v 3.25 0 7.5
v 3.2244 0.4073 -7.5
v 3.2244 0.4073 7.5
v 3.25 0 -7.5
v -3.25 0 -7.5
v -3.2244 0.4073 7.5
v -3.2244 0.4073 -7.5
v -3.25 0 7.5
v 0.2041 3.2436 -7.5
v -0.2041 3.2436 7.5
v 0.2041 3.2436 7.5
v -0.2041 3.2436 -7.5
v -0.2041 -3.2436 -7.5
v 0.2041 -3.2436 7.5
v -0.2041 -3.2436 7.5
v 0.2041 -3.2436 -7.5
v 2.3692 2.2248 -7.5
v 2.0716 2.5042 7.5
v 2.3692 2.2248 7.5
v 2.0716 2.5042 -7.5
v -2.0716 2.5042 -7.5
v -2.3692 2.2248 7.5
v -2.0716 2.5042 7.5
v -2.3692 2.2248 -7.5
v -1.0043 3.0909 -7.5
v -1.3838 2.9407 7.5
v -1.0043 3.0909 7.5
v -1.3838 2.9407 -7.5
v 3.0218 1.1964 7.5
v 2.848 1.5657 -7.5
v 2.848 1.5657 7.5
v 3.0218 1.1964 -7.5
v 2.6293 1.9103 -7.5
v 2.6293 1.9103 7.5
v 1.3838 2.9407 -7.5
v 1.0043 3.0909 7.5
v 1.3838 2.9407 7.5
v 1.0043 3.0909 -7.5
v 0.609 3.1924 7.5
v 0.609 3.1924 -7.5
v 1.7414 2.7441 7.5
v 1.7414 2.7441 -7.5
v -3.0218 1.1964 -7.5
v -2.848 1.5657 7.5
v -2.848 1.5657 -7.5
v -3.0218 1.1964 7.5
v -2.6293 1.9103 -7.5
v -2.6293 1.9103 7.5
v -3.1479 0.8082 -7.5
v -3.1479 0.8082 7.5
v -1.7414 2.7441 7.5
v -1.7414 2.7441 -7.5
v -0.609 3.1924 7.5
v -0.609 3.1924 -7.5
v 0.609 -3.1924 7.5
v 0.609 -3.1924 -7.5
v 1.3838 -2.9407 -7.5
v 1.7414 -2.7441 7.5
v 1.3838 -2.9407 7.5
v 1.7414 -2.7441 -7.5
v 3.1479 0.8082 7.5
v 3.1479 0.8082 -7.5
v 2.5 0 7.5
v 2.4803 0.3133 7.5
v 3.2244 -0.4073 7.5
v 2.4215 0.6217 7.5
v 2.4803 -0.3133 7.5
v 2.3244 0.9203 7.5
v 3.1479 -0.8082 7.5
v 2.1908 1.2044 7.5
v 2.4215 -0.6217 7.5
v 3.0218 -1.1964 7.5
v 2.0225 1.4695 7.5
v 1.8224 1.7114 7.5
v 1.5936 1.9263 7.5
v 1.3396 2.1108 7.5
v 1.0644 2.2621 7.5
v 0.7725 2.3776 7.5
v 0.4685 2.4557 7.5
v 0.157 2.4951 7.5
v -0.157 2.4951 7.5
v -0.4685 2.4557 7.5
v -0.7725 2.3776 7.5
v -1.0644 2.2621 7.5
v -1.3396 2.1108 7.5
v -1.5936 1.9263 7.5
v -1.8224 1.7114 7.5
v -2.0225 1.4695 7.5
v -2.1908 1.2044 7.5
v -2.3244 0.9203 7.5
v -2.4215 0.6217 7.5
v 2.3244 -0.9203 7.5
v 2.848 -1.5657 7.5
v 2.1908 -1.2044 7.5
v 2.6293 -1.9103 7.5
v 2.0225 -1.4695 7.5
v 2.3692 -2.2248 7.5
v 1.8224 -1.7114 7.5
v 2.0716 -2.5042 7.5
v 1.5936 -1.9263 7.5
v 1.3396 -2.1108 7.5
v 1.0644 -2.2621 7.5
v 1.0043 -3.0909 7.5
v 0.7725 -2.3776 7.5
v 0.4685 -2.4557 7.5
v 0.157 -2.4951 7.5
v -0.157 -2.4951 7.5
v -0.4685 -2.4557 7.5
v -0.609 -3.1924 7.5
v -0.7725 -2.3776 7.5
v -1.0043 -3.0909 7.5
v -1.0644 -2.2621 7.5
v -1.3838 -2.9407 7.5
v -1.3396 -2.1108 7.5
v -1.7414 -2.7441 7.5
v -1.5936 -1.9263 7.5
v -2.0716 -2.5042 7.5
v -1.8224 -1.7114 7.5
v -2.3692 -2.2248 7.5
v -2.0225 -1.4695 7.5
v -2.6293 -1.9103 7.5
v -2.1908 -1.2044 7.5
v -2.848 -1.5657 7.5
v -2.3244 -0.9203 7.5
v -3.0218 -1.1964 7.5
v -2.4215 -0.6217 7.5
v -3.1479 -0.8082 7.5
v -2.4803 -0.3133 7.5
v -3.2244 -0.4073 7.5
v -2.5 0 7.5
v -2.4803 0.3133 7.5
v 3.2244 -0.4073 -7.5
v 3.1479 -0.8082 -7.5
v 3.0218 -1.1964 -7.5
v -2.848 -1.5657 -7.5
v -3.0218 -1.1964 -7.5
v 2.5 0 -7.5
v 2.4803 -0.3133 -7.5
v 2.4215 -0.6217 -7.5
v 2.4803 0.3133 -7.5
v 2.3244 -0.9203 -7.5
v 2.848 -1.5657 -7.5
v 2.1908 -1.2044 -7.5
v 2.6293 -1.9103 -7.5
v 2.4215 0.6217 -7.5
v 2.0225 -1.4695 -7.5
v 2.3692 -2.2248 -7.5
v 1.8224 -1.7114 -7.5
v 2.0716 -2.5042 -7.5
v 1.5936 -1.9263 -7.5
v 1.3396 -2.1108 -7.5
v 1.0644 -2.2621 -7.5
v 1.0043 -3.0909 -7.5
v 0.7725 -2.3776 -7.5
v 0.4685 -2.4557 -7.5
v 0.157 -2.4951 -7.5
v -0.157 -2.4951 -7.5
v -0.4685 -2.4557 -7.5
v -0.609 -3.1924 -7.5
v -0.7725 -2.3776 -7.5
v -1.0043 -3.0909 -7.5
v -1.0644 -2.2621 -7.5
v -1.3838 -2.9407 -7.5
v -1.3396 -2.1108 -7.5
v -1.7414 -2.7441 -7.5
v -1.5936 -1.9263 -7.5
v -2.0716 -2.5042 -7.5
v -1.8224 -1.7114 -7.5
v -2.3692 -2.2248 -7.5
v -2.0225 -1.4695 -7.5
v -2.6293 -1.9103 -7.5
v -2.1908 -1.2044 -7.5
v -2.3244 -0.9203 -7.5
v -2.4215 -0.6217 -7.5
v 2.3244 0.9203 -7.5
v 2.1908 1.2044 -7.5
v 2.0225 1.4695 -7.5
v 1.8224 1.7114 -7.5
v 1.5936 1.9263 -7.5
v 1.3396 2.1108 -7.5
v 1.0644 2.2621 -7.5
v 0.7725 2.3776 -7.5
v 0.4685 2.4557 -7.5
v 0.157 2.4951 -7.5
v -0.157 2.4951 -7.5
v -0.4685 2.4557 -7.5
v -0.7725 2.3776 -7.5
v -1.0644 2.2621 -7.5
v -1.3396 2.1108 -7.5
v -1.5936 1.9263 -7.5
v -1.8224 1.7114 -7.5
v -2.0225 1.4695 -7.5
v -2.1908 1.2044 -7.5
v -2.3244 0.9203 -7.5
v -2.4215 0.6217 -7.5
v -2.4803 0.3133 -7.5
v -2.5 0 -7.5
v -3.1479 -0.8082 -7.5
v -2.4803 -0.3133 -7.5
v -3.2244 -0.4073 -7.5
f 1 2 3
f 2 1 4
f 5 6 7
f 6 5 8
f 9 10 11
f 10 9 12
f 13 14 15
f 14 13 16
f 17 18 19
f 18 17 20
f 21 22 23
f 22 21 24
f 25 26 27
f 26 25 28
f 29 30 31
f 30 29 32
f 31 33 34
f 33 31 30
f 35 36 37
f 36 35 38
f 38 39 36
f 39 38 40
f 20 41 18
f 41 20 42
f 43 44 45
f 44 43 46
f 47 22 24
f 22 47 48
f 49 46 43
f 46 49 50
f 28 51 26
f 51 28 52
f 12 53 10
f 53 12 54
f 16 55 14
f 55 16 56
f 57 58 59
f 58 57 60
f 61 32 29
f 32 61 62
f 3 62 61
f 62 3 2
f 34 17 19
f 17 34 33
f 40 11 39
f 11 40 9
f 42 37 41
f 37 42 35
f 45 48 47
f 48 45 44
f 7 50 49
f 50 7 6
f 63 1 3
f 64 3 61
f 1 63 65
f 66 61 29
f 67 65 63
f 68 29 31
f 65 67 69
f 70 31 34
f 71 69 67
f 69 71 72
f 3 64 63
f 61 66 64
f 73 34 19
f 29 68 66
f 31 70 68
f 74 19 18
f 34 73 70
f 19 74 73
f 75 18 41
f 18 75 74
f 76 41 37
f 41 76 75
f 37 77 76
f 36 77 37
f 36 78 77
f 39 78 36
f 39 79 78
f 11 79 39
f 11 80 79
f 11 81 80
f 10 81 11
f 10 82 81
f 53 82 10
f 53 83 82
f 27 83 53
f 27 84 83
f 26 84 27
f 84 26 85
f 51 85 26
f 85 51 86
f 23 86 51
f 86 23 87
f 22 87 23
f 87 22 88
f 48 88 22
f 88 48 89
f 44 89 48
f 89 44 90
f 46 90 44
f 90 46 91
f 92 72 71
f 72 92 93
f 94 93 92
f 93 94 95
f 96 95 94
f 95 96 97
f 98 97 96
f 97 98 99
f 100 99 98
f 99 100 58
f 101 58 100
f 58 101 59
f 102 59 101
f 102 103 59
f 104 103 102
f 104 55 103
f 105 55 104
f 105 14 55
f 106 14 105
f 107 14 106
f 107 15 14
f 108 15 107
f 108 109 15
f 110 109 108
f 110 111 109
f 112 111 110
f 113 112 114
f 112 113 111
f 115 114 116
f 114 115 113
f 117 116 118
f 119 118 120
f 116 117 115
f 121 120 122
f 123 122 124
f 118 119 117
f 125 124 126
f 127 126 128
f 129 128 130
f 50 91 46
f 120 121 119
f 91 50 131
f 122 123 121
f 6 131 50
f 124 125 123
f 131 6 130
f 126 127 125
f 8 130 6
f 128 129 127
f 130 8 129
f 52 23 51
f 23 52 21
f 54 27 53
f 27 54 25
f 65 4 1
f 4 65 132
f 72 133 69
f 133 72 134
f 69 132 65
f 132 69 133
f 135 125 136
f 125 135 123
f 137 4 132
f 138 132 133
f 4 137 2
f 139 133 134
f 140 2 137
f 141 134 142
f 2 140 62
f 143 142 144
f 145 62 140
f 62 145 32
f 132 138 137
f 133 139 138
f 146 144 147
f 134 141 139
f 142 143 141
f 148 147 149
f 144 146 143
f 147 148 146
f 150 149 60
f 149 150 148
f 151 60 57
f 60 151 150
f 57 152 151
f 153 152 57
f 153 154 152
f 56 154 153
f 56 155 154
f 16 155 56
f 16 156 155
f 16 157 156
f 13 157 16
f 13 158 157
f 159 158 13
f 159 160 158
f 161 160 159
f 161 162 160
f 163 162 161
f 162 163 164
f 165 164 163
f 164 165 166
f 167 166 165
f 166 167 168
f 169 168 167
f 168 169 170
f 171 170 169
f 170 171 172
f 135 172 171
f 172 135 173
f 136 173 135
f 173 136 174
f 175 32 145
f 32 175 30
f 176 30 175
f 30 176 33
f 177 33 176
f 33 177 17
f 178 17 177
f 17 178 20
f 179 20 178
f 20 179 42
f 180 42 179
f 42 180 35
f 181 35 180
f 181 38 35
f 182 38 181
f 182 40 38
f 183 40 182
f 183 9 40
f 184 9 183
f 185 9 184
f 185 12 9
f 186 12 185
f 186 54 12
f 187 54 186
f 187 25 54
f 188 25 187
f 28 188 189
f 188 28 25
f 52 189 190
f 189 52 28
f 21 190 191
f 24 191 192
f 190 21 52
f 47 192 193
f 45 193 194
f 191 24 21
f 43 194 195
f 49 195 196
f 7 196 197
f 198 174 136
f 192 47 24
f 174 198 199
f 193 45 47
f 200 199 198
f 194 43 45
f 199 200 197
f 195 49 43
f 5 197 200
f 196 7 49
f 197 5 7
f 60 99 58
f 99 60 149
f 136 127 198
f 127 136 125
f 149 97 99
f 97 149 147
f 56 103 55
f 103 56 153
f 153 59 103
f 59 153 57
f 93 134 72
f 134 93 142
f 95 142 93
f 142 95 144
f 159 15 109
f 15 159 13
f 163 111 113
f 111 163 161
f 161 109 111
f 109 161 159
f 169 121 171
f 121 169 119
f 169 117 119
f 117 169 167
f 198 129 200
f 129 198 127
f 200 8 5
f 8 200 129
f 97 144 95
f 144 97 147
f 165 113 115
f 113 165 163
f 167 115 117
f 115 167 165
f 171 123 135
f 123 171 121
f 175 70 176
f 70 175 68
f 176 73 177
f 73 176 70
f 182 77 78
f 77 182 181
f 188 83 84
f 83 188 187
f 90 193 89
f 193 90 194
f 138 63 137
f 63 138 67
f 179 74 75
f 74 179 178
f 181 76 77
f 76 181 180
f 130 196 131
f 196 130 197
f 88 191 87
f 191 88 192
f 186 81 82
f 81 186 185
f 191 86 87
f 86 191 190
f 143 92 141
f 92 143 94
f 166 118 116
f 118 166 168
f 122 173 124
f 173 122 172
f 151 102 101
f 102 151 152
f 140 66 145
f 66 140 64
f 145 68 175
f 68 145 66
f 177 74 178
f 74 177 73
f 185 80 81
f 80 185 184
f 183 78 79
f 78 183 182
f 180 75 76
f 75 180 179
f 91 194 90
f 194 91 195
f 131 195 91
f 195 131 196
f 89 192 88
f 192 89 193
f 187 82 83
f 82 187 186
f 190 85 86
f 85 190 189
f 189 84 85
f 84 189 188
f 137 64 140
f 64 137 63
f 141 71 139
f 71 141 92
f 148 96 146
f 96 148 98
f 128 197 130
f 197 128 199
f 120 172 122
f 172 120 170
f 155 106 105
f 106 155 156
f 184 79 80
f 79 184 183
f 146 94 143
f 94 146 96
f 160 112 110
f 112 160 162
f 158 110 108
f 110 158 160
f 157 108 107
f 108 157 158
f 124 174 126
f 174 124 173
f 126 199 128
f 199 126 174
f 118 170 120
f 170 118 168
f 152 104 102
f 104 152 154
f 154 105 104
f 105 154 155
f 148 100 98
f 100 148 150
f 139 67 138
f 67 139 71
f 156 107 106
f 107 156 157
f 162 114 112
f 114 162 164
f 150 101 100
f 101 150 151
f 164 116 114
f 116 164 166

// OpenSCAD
$fn = 50;


difference() {
	union() {
		translate(v = [0, 0, -7.5000000000]) {
			cylinder(h = 15, r = 3.2500000000);
		}
	}
	union() {
		translate(v = [0, 0, -100.0000000000]) {
			cylinder(h = 200, r = 2.5000000000);
		}
	}
}
